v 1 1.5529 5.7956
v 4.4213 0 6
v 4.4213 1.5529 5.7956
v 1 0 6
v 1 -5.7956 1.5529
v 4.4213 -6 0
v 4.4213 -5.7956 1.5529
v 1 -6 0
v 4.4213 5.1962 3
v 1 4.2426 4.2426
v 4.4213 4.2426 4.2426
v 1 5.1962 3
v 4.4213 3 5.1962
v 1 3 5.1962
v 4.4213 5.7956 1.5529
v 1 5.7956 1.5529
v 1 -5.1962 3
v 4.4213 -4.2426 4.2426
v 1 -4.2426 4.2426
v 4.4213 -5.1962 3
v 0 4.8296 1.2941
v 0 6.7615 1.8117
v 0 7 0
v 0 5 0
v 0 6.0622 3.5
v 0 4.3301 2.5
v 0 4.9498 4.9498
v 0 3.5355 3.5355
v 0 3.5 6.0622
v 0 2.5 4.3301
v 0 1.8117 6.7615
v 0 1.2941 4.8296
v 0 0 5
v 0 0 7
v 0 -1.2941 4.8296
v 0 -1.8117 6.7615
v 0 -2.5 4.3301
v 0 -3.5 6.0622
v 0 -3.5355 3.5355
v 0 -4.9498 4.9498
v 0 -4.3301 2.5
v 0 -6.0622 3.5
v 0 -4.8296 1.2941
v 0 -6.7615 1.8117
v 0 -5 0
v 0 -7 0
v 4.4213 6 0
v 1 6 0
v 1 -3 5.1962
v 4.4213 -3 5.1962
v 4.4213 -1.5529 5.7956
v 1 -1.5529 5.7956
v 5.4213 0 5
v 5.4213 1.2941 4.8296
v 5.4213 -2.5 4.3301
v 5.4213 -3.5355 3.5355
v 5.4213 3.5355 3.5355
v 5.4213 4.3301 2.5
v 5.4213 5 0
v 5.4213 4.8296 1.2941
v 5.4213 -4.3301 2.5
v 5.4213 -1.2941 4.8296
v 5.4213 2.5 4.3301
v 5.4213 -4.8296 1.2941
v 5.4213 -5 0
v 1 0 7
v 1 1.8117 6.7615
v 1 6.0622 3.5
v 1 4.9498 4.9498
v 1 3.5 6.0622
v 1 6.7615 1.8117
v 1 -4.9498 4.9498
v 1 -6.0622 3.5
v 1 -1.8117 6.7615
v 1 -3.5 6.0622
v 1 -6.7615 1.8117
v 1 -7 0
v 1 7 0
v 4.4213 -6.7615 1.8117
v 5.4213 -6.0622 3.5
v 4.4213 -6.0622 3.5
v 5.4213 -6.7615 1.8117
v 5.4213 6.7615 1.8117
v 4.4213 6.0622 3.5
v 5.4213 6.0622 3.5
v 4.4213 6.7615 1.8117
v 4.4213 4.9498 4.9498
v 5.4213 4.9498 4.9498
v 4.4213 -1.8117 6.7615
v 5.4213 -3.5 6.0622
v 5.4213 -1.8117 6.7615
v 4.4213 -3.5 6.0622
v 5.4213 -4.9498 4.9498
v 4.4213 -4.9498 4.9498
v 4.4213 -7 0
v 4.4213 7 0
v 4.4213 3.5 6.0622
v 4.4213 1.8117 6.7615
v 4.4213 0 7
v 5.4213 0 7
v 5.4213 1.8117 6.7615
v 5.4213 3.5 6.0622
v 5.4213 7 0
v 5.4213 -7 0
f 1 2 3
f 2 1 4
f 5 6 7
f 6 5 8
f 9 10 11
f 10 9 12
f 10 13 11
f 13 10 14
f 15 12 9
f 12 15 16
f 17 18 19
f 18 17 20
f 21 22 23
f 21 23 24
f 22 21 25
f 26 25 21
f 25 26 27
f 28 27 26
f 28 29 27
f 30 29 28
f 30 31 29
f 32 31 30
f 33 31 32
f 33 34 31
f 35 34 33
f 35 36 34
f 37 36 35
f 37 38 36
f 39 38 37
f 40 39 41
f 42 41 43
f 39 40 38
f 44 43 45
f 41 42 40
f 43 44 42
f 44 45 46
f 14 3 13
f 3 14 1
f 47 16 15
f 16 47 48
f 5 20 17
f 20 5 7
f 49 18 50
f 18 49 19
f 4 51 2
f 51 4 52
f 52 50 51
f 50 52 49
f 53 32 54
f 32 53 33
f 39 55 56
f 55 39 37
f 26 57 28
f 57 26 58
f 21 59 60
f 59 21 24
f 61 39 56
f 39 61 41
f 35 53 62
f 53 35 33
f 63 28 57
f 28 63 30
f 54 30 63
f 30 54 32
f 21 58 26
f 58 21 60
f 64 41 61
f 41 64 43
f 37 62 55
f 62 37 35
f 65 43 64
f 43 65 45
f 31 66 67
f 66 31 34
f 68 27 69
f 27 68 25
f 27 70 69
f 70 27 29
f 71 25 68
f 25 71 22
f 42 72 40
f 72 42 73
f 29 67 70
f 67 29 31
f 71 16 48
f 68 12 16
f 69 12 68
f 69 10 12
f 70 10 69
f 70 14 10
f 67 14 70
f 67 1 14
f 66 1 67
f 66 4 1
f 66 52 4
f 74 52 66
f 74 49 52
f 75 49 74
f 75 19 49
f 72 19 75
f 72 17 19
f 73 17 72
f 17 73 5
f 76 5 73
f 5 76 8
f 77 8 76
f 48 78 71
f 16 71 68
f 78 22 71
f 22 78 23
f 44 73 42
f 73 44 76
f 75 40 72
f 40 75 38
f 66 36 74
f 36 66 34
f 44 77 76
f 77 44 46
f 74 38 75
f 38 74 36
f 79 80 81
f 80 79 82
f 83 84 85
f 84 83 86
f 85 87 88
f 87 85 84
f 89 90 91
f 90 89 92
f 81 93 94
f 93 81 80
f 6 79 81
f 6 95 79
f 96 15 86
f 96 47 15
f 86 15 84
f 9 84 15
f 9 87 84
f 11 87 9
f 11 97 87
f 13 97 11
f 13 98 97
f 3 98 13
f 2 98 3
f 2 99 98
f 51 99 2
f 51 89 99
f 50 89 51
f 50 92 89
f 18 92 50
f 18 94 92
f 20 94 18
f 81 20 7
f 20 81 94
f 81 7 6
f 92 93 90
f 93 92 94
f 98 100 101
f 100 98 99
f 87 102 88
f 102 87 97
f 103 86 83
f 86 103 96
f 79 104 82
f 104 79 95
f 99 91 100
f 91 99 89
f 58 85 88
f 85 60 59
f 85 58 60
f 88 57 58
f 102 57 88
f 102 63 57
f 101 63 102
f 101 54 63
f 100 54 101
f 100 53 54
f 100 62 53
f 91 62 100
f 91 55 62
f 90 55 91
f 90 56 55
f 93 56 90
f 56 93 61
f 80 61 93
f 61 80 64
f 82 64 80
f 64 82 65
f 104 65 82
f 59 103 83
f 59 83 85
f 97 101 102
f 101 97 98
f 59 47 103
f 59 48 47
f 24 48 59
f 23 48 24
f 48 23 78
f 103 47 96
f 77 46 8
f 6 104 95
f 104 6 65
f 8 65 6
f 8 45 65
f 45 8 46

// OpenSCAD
// file: ../build_environments.scad
// build_environments.scad: modules to build level sections
//

module pool(diameter=10.0, wall_height=2.0, step_width=3.0, connections=[])
{
    difference() {
        union() {
        difference() {
            cylinder(h=0.5,r1=diameter+step_width,r2=diameter+step_width,$fn=48);
            translate([0,0,-0.1])
                cylinder(h=0.7,r1=diameter,r2=diameter,$fn=48);
        }
        difference() {
            cylinder(h=wall_height,r1=diameter+step_width+1.0,r2=diameter+step_width+1.0,$fn=48);
            translate([0,0,-0.1])
                cylinder(h=wall_height+0.2,r1=diameter+step_width,r2=diameter+step_width,$fn=48);
        }
        }
    
        for (c = connections)
        {
            rotate([0,90,0]) {
                angle = atan2(c[1],c[0]);
                rotate([-angle,0,0]) {
                    cylinder(h=diameter+5.0,r1=c[2],r2=c[2],$fn=48);
                }
            }
        }
    }
}

module straight(length=10.0, width=2.0, dy1=0.0, dy2=0.0, dz=0.0)
{
    dims = [0, 0, 0, 0, 0, (dz/length)];
    matrix = [
        [ 1, dims[0], dims[1], 0 ],
        [ dims[2], 1, dims[4], 0 ],
        [ dims[5], dims[3], 1, 0 ],
        [ 0, 0, 0, 1 ]
    ];
    multmatrix(matrix)
    difference() {
        translate([dy1,0,0])
        union() {
            rotate([0,90,0]) {
                difference() {
                    cylinder(h=(length-dy1-dy2),r1=width+1.0,r2=width+1.0,$fn=24);
                    translate([0,0,-0.1])
                        cylinder(h=(length-dy1-dy2+0.2),r1=width,r2=width,$fn=24);
                }
                difference() {
                    cylinder(h=1.0,r1=width+2.0,r2=width+2.0,$fn=24);
                    translate([0,0,-0.1])
                        cylinder(h=1.2,r1=width,r2=width,$fn=24);
                }
                translate([0,0,(length-dy1-dy2)-1.0]) {
                    difference() {
                        cylinder(h=1.0,r1=width+2.0,r2=width+2.0,$fn=24);
                        translate([0,0,-0.1])
                            cylinder(h=1.2,r1=width,r2=width,$fn=24);
                    }
                }
            }
        }
        translate([0,0,-(2*width+4.0)/2])
            cube([3*length,3*length,2*width+4.0],center=true);
    }
}

module curve(p0=[0,0], center=[0,0], dir=1, angle=0.0, width=2.0)
{
    radius = sqrt((p0[0]-center[0])*(p0[0]-center[0]) + (p0[1]-center[1])*(p0[1]-center[1]));
    if (dir == 0) {
        difference() {
            rotate([0,0,-90])
            difference() {
                rotate_extrude(angle = angle, convexity = 10, $fn=32)
                    translate([radius, 0, 0])
                        circle(r = width+1.0,$fn=24);
                rotate([0,0,-1.0])
                    rotate_extrude(angle = angle+2.0, convexity = 10, $fn=32)
                        translate([radius, 0, 0])
                            circle(r = width,$fn=24);
            }
            translate([0,0,-(2*width+4.0)/2])
                cube([5*radius,5*radius,2*width+4.0],center=true);
        }
    }
    else {
        difference() {
            rotate([0,0,90])
            difference() {
                rotate_extrude(angle = -angle, convexity = 10, $fn=32)
                    translate([radius, 0, 0])
                        circle(r = width+1.0,$fn=24);
                rotate([0,0,1.0])
                    rotate_extrude(angle = -angle-2.0, convexity = 10, $fn=32)
                        translate([radius, 0, 0])
                            circle(r = width,$fn=24);
            }
            translate([0,0,-(2*width+4.0)/2])
                cube([5*radius,5*radius,2*width+4.0],center=true);
        }
    }

}

// test pool
//pool(diameter=12.0000, wall_height=3.0000, step_width=3.0000, connections=[[0.0000,-26.0000,2.0000], [23.6074,0.0000,2.0000]]);

// test straight, slope
//straight(length=26.0000, width=2.0000, dy1=11.8322, dy2=6.7082, dz=0.0000);
//straight(length=29.1549, width=12.0000, dy1=0.0000, dy2=0.0000, dz=-15.0000);

// test curve
//curve(p0=[23.6074, 0.0000], center=[23.6074, 5.0000], dir=0, angle=60.1011, width=2.0000);
//curve(p0=[33.6426, 12.4219], center=[37.9771, 9.9295], dir=1, angle=120.4627, width=2.0000);
// main file
use <../build_environments.scad>;
straight(length=5.4213, width=5.0000, dy1=0.0000, dy2=0.0000, dz=0.0000);
